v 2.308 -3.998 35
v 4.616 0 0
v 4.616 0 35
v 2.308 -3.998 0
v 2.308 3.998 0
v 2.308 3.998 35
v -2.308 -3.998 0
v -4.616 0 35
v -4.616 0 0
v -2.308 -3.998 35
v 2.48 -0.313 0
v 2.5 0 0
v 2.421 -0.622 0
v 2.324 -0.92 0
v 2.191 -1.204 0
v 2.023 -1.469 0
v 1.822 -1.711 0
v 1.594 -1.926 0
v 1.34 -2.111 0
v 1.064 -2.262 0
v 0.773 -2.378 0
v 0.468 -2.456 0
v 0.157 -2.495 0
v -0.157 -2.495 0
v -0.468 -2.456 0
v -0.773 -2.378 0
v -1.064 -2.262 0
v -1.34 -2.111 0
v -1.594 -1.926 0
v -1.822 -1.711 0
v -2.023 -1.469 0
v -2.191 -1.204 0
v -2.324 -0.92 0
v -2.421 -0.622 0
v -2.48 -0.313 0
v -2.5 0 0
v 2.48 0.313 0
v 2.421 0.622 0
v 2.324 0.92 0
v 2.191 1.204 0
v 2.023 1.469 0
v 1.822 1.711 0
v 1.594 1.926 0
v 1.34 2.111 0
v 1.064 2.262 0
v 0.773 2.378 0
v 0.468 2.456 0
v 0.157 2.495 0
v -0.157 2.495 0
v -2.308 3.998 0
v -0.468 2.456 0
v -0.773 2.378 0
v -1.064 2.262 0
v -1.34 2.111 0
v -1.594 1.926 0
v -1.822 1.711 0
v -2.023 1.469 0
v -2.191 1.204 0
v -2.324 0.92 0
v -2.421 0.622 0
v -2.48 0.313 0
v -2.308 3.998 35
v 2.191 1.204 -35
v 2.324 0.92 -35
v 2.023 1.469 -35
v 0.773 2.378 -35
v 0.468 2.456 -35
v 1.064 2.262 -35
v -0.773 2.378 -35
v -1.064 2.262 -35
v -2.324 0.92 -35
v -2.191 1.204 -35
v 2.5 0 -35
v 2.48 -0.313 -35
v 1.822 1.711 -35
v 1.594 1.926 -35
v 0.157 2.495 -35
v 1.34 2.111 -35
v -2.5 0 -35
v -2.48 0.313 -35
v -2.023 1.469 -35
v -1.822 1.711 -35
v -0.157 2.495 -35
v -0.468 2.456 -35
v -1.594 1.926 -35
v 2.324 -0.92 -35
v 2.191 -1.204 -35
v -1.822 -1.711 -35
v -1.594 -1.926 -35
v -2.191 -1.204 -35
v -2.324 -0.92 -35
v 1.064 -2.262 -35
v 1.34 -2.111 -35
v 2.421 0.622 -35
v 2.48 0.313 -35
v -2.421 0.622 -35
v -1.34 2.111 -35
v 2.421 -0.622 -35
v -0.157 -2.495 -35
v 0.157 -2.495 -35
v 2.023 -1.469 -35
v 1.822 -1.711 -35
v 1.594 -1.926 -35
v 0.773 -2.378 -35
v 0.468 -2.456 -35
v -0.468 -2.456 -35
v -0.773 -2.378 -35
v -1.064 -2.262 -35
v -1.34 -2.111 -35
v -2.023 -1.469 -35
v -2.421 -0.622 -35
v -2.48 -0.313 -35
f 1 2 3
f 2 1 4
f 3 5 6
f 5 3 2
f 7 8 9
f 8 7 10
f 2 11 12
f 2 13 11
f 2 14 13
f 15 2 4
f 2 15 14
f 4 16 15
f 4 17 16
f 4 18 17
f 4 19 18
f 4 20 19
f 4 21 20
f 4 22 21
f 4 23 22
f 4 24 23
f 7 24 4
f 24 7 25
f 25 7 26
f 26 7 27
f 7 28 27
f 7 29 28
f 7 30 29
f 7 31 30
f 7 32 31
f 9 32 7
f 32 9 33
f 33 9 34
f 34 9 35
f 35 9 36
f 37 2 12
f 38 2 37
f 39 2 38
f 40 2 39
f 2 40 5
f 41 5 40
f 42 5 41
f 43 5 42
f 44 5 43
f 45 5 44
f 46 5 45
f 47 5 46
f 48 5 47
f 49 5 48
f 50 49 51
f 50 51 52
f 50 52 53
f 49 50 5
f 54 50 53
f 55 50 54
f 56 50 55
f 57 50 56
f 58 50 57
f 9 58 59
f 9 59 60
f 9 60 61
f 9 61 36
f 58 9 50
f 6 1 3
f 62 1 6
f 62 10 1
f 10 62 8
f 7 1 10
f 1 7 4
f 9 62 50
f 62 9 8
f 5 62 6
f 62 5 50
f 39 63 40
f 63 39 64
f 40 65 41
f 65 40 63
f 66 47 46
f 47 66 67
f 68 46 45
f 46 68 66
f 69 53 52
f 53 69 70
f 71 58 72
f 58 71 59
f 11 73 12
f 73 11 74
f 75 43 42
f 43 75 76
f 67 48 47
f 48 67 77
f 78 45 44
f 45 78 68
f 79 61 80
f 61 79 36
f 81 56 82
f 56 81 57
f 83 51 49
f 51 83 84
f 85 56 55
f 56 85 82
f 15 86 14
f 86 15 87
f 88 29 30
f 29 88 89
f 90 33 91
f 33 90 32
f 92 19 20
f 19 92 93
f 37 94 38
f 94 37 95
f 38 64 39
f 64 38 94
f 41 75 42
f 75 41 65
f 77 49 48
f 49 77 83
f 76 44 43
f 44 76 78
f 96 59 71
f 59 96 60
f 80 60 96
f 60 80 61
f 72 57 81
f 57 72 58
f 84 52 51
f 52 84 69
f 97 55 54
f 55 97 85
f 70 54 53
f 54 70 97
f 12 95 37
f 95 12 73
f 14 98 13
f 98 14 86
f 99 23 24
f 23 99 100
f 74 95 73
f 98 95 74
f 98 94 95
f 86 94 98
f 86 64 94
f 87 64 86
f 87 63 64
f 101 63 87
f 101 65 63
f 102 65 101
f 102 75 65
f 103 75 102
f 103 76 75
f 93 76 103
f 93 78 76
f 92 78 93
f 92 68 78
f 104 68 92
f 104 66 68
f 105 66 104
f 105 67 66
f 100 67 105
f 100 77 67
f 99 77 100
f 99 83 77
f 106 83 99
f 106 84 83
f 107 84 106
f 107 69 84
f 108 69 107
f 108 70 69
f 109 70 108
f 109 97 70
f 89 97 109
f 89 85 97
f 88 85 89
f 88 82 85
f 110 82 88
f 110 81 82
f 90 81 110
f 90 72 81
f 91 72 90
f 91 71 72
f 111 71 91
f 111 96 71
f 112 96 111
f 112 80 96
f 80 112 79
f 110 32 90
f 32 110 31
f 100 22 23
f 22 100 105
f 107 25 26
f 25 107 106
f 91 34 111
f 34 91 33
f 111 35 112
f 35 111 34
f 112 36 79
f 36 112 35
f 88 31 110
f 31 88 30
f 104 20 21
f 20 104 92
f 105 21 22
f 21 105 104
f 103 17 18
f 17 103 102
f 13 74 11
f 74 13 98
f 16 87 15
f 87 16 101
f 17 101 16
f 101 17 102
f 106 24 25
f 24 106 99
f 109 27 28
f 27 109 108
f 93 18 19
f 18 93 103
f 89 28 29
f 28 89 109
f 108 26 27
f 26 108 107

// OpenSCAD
$fn = 50;


difference() {
	union() {
		linear_extrude(height = 35) {
			polygon(points = [[4.6160000000, 0.0000000000], [2.3080000000, 3.9975732639], [-2.3080000000, 3.9975732639], [-4.6160000000, 0.0000000000], [-2.3080000000, -3.9975732639], [2.3080000000, -3.9975732639]]);
		}
		translate(v = [0, 0, -35]) {
			cylinder(h = 35, r = 2.5000000000);
		}
	}
	union();
}
